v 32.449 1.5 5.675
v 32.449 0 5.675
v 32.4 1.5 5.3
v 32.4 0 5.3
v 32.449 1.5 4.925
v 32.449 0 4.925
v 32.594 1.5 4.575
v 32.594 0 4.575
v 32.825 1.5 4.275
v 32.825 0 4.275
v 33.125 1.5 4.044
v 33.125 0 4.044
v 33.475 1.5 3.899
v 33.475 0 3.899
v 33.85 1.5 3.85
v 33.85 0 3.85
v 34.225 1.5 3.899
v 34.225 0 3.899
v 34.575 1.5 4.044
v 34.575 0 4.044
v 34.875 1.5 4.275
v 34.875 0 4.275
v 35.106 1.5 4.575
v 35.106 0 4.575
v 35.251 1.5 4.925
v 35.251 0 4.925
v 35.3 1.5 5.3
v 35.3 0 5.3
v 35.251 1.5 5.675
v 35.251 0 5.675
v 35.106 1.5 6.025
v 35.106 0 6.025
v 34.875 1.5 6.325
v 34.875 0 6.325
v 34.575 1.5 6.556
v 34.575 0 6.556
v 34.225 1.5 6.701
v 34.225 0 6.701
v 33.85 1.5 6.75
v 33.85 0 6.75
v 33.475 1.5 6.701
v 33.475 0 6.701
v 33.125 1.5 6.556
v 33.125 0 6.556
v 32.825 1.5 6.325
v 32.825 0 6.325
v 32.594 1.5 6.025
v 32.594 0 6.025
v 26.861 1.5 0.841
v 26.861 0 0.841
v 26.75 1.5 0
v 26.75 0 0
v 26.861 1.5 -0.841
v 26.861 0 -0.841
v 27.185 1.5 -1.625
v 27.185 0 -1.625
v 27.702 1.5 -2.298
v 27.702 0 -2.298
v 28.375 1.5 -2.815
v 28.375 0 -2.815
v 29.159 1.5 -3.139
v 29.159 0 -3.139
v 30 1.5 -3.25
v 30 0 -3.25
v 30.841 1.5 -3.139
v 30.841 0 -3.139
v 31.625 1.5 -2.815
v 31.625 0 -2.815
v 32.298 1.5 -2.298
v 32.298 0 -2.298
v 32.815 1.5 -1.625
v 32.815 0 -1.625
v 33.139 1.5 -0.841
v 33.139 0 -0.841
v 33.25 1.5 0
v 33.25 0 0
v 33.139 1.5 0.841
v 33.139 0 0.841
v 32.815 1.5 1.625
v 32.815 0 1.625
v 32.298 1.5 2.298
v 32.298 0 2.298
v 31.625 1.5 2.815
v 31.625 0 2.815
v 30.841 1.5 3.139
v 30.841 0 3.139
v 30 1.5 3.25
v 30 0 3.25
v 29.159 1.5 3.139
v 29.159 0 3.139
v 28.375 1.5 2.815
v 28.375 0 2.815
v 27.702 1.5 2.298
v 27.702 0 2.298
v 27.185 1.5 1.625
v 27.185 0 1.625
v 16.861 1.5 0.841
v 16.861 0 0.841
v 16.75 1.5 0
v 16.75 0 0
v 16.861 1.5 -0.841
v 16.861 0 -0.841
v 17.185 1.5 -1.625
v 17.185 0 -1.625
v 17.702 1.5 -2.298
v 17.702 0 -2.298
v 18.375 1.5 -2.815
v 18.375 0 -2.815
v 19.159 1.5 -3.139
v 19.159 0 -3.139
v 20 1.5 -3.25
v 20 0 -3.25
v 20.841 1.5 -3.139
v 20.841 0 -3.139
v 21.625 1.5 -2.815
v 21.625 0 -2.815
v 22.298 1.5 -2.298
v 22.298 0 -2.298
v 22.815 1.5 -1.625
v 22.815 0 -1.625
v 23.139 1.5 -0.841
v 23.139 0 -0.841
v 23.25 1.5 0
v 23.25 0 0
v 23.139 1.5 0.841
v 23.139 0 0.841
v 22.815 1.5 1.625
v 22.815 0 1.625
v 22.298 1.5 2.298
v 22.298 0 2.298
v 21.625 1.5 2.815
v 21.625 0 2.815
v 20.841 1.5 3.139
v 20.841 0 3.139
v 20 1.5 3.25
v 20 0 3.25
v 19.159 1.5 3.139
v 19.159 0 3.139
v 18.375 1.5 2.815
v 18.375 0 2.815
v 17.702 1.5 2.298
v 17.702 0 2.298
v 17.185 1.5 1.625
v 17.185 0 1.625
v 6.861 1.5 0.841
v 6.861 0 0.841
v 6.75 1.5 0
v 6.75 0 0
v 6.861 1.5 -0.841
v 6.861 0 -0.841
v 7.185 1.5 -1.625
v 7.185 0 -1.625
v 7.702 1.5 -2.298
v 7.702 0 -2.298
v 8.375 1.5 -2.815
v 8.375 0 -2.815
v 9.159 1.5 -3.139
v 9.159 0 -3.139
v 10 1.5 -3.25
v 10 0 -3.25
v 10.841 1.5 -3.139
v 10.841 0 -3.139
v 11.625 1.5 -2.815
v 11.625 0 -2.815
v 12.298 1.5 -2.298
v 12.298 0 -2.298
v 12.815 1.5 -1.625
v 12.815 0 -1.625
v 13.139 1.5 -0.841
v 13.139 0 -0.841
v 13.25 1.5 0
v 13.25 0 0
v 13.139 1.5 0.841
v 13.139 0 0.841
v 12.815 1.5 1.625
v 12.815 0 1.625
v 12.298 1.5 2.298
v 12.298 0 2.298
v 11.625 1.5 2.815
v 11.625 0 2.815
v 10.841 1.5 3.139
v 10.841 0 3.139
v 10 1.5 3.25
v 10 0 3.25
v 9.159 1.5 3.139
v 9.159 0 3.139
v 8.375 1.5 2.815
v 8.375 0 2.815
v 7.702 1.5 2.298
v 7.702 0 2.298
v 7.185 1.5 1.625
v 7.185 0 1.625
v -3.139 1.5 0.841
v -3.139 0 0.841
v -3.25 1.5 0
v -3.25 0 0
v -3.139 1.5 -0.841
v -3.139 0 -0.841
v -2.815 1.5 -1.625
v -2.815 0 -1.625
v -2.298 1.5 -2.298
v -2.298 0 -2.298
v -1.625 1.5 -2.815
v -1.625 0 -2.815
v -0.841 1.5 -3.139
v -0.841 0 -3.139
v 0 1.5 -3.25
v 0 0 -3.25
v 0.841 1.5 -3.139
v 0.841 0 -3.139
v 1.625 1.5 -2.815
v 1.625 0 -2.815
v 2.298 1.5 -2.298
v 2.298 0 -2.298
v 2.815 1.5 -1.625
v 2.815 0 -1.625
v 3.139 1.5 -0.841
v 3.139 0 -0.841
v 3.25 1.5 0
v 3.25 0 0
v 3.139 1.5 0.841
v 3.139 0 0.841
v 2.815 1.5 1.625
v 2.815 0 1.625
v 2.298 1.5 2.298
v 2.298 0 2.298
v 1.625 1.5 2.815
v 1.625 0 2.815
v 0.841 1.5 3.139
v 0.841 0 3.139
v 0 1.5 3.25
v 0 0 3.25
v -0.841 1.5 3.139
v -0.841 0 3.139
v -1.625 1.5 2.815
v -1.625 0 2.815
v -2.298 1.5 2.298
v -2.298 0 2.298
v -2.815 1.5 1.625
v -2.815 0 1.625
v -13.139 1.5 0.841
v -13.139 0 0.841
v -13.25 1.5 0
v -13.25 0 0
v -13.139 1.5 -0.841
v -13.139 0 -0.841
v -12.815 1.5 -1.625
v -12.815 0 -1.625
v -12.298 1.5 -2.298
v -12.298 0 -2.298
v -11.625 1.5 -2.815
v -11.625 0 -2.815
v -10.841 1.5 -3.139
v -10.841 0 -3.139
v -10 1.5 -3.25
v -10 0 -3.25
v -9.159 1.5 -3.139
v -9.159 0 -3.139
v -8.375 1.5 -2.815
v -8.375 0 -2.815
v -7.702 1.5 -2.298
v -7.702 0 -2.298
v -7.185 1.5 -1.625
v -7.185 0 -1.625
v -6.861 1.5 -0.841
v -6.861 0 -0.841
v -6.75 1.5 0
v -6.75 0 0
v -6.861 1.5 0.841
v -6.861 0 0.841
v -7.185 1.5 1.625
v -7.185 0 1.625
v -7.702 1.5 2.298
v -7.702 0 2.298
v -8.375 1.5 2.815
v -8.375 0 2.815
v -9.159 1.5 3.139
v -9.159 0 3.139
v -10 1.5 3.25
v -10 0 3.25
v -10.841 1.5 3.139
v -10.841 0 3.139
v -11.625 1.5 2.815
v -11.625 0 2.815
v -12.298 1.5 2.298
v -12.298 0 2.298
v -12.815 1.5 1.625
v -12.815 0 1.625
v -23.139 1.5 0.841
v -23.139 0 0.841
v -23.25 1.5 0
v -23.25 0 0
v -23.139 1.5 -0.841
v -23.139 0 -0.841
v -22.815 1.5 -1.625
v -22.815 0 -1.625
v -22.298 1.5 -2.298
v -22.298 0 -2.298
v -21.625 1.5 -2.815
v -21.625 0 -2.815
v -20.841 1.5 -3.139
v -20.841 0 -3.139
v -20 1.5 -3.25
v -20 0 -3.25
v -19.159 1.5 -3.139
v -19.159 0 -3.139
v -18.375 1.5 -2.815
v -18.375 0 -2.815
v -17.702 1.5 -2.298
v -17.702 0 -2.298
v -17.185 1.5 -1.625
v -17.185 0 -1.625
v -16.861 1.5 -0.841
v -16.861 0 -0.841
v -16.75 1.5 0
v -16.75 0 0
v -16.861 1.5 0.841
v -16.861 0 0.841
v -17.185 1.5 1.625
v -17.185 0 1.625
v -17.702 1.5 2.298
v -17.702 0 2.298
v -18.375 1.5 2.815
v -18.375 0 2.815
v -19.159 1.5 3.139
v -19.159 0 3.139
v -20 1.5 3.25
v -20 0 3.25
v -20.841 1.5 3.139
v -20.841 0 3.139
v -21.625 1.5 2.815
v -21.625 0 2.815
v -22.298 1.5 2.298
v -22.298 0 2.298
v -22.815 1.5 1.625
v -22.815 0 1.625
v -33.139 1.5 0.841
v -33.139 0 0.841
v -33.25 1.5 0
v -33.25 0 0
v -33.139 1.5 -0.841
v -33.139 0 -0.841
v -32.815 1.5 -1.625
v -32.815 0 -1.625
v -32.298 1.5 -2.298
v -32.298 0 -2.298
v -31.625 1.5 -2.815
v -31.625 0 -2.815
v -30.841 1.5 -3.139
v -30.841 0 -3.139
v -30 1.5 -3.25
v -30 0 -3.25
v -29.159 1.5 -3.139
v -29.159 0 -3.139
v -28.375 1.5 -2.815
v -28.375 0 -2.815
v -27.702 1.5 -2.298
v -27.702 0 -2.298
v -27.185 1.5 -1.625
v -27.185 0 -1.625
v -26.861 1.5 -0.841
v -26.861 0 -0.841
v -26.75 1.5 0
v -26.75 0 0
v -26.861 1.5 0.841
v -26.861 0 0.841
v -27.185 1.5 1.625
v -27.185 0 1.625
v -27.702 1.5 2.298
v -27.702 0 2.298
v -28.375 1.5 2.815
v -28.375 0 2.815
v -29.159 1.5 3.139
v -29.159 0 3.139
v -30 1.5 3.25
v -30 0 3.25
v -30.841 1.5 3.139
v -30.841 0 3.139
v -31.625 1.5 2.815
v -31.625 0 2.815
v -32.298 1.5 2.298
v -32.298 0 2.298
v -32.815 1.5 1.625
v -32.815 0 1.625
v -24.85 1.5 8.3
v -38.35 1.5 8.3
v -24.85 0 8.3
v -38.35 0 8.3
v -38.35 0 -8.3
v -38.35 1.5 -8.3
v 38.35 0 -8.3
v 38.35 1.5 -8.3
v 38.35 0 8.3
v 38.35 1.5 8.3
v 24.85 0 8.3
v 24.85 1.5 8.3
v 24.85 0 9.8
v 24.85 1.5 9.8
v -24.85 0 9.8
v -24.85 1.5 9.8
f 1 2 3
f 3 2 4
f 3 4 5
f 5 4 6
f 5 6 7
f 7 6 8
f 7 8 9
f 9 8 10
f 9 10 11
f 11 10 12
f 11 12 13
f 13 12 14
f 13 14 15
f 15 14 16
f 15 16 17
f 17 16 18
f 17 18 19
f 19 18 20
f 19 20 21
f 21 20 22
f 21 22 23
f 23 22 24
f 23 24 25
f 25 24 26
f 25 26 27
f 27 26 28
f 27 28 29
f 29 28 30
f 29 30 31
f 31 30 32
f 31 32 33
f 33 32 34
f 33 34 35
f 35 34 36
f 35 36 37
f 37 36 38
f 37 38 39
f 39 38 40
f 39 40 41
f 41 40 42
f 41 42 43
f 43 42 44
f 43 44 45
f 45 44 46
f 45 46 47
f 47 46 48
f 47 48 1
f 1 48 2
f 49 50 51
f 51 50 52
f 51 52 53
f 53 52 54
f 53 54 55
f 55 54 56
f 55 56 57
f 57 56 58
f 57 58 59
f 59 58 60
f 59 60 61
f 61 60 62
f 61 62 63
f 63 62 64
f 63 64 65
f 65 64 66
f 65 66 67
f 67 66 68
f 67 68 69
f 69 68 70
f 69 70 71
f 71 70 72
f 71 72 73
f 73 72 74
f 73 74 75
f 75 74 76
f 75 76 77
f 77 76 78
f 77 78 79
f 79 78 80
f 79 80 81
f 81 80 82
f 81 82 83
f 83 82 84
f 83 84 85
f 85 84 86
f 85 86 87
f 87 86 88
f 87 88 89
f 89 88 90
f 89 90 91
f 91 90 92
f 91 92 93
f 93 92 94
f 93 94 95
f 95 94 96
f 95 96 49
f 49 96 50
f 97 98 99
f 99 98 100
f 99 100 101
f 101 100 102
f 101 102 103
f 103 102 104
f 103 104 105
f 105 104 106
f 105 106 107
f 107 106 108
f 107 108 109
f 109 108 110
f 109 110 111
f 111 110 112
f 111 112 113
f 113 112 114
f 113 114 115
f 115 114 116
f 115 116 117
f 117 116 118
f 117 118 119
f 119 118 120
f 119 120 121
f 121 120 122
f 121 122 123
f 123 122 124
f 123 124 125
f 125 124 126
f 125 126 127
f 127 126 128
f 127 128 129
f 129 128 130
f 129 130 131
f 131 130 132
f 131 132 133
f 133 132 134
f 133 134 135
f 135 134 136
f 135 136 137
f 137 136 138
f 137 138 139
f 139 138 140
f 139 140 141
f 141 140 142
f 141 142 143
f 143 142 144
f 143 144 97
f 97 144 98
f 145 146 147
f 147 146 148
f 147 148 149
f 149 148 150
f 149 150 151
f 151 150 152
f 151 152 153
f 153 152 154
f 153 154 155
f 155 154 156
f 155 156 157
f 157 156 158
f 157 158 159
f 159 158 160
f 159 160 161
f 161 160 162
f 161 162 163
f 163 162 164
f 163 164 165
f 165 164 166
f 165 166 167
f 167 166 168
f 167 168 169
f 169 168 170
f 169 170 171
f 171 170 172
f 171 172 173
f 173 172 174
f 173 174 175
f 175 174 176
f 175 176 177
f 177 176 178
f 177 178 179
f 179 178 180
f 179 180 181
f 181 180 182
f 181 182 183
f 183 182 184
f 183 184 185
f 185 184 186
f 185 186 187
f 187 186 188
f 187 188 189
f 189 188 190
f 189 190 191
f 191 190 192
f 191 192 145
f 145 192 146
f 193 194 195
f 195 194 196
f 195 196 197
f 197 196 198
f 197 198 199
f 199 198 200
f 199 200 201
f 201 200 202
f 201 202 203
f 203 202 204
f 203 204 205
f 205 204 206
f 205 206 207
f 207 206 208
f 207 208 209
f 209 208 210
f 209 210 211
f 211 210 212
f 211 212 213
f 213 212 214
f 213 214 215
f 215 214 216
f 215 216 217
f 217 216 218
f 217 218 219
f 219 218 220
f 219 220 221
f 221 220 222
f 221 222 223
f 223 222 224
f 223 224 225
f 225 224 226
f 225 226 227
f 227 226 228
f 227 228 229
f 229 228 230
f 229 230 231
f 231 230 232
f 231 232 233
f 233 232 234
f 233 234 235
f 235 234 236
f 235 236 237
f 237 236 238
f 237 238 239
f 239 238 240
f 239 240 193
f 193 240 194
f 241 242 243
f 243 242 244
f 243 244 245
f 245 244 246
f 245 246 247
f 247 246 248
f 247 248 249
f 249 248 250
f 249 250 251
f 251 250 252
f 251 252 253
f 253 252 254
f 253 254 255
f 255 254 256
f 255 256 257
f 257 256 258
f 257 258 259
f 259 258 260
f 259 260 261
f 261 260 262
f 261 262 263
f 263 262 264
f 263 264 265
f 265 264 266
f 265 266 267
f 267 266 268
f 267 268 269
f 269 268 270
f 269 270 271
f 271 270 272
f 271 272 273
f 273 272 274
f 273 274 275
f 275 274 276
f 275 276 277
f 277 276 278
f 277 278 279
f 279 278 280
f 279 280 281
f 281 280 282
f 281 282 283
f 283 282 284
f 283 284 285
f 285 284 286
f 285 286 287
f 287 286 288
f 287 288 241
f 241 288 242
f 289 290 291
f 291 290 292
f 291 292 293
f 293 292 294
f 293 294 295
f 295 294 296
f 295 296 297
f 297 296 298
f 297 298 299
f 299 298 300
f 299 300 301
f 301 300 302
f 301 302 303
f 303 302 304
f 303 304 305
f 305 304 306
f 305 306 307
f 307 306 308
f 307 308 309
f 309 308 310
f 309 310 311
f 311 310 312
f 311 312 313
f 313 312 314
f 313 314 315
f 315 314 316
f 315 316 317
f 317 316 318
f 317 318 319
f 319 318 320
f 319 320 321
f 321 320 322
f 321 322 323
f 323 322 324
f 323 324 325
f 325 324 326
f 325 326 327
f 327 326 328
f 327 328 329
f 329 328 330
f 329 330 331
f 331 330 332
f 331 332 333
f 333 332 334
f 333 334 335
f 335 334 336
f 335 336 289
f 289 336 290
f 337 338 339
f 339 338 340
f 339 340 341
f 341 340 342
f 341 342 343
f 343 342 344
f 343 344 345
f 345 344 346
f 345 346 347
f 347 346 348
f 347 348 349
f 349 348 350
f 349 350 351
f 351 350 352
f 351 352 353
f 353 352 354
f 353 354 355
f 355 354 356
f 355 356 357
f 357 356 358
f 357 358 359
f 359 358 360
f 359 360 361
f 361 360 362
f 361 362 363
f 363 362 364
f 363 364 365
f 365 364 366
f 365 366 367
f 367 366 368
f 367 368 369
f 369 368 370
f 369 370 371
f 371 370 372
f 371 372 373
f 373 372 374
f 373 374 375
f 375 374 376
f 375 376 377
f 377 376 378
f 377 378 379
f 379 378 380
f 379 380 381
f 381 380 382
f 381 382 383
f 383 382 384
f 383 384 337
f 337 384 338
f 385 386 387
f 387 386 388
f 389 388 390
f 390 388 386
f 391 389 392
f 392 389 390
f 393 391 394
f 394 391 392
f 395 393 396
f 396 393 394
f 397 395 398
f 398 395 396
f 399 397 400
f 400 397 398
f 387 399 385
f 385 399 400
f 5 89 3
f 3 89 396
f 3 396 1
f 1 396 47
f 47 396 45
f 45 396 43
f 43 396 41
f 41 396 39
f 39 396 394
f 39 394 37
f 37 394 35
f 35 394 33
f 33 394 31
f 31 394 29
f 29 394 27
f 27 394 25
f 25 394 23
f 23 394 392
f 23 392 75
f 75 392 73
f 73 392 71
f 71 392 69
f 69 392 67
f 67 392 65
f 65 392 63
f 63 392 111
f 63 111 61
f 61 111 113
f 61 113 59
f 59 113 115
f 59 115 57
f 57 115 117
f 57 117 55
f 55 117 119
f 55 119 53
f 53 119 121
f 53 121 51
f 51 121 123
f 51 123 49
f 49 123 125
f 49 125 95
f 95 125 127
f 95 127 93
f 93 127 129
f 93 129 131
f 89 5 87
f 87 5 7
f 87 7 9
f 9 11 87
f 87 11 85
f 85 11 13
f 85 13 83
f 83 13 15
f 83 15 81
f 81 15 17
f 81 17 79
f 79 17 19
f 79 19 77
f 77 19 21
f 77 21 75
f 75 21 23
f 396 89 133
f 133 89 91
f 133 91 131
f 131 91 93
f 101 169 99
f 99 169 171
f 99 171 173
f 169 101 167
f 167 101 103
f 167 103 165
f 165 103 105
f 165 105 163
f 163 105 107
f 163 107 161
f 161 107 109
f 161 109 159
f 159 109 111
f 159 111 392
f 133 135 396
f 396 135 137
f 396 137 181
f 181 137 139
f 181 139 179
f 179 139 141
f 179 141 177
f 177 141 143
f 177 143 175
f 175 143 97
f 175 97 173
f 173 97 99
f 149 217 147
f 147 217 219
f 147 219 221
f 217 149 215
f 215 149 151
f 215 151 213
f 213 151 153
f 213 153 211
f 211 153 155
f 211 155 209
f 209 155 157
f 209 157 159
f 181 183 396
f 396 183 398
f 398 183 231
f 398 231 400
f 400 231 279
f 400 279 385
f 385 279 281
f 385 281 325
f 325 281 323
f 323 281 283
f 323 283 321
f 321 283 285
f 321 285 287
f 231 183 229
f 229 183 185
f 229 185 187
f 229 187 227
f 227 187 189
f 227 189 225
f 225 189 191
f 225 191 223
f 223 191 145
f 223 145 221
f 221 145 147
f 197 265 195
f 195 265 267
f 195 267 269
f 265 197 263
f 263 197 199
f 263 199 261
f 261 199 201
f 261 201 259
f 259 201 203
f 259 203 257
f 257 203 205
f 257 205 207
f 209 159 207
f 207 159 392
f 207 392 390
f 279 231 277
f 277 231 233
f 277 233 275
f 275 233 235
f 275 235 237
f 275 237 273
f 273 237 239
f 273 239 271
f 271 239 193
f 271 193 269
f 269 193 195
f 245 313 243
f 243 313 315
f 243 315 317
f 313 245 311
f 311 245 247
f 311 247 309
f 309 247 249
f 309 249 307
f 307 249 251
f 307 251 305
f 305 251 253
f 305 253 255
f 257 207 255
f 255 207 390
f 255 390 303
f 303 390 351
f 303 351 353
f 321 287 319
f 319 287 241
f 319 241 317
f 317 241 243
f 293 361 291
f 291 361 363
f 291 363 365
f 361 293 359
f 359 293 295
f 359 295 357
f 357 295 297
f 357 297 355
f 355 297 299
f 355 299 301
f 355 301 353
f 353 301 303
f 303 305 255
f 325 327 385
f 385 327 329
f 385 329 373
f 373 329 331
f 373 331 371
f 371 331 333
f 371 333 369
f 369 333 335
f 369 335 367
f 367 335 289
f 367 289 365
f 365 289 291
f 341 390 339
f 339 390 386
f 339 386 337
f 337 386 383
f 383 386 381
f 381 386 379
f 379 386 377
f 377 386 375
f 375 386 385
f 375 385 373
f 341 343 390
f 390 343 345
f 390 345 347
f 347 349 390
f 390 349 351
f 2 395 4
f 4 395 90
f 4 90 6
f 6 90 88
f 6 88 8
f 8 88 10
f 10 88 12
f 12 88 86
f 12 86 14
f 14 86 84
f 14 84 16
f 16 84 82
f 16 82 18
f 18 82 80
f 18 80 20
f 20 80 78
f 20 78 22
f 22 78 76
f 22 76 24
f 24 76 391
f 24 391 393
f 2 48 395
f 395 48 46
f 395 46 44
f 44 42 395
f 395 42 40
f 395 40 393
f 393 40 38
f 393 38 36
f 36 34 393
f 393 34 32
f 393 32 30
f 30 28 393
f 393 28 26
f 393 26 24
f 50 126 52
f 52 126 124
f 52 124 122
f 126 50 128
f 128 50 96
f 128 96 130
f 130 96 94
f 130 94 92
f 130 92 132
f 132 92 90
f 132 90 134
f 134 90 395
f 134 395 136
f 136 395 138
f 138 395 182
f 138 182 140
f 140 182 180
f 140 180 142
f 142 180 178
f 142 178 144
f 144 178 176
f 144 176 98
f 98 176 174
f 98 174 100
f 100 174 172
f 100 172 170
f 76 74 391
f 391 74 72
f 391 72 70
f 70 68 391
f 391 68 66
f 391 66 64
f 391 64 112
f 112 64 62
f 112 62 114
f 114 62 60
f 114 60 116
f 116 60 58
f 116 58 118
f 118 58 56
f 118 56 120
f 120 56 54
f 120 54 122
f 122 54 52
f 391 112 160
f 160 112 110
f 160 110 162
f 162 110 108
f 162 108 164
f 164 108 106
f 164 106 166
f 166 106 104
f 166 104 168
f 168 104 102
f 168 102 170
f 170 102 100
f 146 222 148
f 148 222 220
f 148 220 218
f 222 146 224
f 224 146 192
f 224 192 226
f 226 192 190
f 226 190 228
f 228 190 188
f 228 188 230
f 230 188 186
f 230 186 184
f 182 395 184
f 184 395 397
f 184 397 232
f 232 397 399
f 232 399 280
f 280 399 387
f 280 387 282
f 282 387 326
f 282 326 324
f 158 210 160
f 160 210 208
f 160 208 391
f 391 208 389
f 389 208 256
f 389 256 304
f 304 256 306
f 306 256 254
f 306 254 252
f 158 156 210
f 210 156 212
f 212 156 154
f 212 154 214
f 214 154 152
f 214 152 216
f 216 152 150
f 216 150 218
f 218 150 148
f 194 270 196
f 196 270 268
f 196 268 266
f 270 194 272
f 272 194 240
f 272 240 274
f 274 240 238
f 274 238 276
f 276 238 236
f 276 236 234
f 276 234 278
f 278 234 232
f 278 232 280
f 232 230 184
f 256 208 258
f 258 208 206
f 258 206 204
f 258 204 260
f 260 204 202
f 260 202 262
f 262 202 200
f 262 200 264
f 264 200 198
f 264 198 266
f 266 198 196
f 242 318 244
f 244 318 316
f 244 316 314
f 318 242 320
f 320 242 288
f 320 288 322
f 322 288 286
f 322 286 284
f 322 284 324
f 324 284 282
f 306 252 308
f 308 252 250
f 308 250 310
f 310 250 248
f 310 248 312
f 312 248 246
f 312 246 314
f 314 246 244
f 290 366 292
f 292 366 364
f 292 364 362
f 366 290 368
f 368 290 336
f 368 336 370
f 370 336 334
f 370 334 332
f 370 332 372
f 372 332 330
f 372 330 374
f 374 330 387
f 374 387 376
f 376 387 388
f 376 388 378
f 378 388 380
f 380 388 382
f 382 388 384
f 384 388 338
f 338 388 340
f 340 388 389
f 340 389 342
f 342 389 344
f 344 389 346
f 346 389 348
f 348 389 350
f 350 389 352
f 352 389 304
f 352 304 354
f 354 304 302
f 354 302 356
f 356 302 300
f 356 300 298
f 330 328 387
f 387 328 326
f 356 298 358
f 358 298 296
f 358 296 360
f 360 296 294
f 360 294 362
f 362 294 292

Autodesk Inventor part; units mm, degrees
ref_plane "YZ Plane" through (0, 0, 0) normal (1, 0, 0) x (0, 1, 0)
ref_plane "XZ Plane" through (0, 0, 0) normal (0, 1, 0) x (-1, 0, 0)
ref_plane "XY Plane" through (0, 0, 0) normal (0, 0, 1) x (1, 0, 0)
sketch "Sketch1" plane through (0, 0, 0) normal (0, 1, 0) x (-1, 0, 0)
  line L0 (38.35, 8.3) -> (-38.35, 8.3)
  line L1 (-38.35, 8.3) -> (-38.35, -8.3)
  line L2 (-38.35, -8.3) -> (38.35, -8.3)
  line L3 (38.35, -8.3) -> (38.35, 8.3)
  line L4 (38.35, 8.3) -> (-38.35, -8.3) construction
  line L5 (-38.35, 8.3) -> (38.35, -8.3) construction
  line L6 (24.85, 8.3) -> (-24.85, 8.3)
  line L7 (-24.85, 8.3) -> (-24.85, 9.8)
  line L8 (-24.85, 9.8) -> (24.85, 9.8)
  line L9 (24.85, 9.8) -> (24.85, 8.3)
  line L10 (-24.85, 9.8) -> (-38.35, 8.3) construction
  line L11 (24.85, 9.8) -> (38.35, 8.3) construction
  point P0 (0, 0)
  dimension "d0" = 76.7
  dimension "d1" = 16.6
  dimension "d16" = 1.5
  dimension "d17" = 13.5
extrude "Extrusion1" add sketch "Sketch1" along normal blind 1.5
sketch "Sketch2" plane through (0, 0, 0) normal (0, 1, 0) x (-1, 0, 0)
  circle A0 centre (30, 0) radius 3.25
  line L0 (30, 0) -> (0, 0) construction
  dimension "d4" = 6.5
  dimension "d5" = 30
extrude "Extrusion2" cut sketch "Sketch2" along normal through all
pattern_linear "Rectangular Pattern1" count 7 spacing 10 along (1, 0, 0) of "Extrusion2"
sketch "Sketch3" plane through (0, 0, 0) normal (0, 1, 0) x (-1, 0, 0)
  circle A0 centre (-33.85, 5.3) radius 1.45
  line L0 (38.35, -8.3) -> (38.35, 8.3) construction
  line L1 (-33.85, 5.3) -> (-33.85, 8.3) construction
  line L2 (38.35, 8.3) -> (-38.35, 8.3) construction
  line L3 (-33.85, 5.3) -> (-38.35, 5.3) construction
  line L4 (-38.35, 8.3) -> (-38.35, -8.3) construction
  point P0 (0, 0)
  dimension "d11" = 2.9
  dimension "d12" = 3
  dimension "d18" = 4.5
extrude "Extrusion3" cut sketch "Sketch3" along normal through all
properties part number "teensy_led_lid"
